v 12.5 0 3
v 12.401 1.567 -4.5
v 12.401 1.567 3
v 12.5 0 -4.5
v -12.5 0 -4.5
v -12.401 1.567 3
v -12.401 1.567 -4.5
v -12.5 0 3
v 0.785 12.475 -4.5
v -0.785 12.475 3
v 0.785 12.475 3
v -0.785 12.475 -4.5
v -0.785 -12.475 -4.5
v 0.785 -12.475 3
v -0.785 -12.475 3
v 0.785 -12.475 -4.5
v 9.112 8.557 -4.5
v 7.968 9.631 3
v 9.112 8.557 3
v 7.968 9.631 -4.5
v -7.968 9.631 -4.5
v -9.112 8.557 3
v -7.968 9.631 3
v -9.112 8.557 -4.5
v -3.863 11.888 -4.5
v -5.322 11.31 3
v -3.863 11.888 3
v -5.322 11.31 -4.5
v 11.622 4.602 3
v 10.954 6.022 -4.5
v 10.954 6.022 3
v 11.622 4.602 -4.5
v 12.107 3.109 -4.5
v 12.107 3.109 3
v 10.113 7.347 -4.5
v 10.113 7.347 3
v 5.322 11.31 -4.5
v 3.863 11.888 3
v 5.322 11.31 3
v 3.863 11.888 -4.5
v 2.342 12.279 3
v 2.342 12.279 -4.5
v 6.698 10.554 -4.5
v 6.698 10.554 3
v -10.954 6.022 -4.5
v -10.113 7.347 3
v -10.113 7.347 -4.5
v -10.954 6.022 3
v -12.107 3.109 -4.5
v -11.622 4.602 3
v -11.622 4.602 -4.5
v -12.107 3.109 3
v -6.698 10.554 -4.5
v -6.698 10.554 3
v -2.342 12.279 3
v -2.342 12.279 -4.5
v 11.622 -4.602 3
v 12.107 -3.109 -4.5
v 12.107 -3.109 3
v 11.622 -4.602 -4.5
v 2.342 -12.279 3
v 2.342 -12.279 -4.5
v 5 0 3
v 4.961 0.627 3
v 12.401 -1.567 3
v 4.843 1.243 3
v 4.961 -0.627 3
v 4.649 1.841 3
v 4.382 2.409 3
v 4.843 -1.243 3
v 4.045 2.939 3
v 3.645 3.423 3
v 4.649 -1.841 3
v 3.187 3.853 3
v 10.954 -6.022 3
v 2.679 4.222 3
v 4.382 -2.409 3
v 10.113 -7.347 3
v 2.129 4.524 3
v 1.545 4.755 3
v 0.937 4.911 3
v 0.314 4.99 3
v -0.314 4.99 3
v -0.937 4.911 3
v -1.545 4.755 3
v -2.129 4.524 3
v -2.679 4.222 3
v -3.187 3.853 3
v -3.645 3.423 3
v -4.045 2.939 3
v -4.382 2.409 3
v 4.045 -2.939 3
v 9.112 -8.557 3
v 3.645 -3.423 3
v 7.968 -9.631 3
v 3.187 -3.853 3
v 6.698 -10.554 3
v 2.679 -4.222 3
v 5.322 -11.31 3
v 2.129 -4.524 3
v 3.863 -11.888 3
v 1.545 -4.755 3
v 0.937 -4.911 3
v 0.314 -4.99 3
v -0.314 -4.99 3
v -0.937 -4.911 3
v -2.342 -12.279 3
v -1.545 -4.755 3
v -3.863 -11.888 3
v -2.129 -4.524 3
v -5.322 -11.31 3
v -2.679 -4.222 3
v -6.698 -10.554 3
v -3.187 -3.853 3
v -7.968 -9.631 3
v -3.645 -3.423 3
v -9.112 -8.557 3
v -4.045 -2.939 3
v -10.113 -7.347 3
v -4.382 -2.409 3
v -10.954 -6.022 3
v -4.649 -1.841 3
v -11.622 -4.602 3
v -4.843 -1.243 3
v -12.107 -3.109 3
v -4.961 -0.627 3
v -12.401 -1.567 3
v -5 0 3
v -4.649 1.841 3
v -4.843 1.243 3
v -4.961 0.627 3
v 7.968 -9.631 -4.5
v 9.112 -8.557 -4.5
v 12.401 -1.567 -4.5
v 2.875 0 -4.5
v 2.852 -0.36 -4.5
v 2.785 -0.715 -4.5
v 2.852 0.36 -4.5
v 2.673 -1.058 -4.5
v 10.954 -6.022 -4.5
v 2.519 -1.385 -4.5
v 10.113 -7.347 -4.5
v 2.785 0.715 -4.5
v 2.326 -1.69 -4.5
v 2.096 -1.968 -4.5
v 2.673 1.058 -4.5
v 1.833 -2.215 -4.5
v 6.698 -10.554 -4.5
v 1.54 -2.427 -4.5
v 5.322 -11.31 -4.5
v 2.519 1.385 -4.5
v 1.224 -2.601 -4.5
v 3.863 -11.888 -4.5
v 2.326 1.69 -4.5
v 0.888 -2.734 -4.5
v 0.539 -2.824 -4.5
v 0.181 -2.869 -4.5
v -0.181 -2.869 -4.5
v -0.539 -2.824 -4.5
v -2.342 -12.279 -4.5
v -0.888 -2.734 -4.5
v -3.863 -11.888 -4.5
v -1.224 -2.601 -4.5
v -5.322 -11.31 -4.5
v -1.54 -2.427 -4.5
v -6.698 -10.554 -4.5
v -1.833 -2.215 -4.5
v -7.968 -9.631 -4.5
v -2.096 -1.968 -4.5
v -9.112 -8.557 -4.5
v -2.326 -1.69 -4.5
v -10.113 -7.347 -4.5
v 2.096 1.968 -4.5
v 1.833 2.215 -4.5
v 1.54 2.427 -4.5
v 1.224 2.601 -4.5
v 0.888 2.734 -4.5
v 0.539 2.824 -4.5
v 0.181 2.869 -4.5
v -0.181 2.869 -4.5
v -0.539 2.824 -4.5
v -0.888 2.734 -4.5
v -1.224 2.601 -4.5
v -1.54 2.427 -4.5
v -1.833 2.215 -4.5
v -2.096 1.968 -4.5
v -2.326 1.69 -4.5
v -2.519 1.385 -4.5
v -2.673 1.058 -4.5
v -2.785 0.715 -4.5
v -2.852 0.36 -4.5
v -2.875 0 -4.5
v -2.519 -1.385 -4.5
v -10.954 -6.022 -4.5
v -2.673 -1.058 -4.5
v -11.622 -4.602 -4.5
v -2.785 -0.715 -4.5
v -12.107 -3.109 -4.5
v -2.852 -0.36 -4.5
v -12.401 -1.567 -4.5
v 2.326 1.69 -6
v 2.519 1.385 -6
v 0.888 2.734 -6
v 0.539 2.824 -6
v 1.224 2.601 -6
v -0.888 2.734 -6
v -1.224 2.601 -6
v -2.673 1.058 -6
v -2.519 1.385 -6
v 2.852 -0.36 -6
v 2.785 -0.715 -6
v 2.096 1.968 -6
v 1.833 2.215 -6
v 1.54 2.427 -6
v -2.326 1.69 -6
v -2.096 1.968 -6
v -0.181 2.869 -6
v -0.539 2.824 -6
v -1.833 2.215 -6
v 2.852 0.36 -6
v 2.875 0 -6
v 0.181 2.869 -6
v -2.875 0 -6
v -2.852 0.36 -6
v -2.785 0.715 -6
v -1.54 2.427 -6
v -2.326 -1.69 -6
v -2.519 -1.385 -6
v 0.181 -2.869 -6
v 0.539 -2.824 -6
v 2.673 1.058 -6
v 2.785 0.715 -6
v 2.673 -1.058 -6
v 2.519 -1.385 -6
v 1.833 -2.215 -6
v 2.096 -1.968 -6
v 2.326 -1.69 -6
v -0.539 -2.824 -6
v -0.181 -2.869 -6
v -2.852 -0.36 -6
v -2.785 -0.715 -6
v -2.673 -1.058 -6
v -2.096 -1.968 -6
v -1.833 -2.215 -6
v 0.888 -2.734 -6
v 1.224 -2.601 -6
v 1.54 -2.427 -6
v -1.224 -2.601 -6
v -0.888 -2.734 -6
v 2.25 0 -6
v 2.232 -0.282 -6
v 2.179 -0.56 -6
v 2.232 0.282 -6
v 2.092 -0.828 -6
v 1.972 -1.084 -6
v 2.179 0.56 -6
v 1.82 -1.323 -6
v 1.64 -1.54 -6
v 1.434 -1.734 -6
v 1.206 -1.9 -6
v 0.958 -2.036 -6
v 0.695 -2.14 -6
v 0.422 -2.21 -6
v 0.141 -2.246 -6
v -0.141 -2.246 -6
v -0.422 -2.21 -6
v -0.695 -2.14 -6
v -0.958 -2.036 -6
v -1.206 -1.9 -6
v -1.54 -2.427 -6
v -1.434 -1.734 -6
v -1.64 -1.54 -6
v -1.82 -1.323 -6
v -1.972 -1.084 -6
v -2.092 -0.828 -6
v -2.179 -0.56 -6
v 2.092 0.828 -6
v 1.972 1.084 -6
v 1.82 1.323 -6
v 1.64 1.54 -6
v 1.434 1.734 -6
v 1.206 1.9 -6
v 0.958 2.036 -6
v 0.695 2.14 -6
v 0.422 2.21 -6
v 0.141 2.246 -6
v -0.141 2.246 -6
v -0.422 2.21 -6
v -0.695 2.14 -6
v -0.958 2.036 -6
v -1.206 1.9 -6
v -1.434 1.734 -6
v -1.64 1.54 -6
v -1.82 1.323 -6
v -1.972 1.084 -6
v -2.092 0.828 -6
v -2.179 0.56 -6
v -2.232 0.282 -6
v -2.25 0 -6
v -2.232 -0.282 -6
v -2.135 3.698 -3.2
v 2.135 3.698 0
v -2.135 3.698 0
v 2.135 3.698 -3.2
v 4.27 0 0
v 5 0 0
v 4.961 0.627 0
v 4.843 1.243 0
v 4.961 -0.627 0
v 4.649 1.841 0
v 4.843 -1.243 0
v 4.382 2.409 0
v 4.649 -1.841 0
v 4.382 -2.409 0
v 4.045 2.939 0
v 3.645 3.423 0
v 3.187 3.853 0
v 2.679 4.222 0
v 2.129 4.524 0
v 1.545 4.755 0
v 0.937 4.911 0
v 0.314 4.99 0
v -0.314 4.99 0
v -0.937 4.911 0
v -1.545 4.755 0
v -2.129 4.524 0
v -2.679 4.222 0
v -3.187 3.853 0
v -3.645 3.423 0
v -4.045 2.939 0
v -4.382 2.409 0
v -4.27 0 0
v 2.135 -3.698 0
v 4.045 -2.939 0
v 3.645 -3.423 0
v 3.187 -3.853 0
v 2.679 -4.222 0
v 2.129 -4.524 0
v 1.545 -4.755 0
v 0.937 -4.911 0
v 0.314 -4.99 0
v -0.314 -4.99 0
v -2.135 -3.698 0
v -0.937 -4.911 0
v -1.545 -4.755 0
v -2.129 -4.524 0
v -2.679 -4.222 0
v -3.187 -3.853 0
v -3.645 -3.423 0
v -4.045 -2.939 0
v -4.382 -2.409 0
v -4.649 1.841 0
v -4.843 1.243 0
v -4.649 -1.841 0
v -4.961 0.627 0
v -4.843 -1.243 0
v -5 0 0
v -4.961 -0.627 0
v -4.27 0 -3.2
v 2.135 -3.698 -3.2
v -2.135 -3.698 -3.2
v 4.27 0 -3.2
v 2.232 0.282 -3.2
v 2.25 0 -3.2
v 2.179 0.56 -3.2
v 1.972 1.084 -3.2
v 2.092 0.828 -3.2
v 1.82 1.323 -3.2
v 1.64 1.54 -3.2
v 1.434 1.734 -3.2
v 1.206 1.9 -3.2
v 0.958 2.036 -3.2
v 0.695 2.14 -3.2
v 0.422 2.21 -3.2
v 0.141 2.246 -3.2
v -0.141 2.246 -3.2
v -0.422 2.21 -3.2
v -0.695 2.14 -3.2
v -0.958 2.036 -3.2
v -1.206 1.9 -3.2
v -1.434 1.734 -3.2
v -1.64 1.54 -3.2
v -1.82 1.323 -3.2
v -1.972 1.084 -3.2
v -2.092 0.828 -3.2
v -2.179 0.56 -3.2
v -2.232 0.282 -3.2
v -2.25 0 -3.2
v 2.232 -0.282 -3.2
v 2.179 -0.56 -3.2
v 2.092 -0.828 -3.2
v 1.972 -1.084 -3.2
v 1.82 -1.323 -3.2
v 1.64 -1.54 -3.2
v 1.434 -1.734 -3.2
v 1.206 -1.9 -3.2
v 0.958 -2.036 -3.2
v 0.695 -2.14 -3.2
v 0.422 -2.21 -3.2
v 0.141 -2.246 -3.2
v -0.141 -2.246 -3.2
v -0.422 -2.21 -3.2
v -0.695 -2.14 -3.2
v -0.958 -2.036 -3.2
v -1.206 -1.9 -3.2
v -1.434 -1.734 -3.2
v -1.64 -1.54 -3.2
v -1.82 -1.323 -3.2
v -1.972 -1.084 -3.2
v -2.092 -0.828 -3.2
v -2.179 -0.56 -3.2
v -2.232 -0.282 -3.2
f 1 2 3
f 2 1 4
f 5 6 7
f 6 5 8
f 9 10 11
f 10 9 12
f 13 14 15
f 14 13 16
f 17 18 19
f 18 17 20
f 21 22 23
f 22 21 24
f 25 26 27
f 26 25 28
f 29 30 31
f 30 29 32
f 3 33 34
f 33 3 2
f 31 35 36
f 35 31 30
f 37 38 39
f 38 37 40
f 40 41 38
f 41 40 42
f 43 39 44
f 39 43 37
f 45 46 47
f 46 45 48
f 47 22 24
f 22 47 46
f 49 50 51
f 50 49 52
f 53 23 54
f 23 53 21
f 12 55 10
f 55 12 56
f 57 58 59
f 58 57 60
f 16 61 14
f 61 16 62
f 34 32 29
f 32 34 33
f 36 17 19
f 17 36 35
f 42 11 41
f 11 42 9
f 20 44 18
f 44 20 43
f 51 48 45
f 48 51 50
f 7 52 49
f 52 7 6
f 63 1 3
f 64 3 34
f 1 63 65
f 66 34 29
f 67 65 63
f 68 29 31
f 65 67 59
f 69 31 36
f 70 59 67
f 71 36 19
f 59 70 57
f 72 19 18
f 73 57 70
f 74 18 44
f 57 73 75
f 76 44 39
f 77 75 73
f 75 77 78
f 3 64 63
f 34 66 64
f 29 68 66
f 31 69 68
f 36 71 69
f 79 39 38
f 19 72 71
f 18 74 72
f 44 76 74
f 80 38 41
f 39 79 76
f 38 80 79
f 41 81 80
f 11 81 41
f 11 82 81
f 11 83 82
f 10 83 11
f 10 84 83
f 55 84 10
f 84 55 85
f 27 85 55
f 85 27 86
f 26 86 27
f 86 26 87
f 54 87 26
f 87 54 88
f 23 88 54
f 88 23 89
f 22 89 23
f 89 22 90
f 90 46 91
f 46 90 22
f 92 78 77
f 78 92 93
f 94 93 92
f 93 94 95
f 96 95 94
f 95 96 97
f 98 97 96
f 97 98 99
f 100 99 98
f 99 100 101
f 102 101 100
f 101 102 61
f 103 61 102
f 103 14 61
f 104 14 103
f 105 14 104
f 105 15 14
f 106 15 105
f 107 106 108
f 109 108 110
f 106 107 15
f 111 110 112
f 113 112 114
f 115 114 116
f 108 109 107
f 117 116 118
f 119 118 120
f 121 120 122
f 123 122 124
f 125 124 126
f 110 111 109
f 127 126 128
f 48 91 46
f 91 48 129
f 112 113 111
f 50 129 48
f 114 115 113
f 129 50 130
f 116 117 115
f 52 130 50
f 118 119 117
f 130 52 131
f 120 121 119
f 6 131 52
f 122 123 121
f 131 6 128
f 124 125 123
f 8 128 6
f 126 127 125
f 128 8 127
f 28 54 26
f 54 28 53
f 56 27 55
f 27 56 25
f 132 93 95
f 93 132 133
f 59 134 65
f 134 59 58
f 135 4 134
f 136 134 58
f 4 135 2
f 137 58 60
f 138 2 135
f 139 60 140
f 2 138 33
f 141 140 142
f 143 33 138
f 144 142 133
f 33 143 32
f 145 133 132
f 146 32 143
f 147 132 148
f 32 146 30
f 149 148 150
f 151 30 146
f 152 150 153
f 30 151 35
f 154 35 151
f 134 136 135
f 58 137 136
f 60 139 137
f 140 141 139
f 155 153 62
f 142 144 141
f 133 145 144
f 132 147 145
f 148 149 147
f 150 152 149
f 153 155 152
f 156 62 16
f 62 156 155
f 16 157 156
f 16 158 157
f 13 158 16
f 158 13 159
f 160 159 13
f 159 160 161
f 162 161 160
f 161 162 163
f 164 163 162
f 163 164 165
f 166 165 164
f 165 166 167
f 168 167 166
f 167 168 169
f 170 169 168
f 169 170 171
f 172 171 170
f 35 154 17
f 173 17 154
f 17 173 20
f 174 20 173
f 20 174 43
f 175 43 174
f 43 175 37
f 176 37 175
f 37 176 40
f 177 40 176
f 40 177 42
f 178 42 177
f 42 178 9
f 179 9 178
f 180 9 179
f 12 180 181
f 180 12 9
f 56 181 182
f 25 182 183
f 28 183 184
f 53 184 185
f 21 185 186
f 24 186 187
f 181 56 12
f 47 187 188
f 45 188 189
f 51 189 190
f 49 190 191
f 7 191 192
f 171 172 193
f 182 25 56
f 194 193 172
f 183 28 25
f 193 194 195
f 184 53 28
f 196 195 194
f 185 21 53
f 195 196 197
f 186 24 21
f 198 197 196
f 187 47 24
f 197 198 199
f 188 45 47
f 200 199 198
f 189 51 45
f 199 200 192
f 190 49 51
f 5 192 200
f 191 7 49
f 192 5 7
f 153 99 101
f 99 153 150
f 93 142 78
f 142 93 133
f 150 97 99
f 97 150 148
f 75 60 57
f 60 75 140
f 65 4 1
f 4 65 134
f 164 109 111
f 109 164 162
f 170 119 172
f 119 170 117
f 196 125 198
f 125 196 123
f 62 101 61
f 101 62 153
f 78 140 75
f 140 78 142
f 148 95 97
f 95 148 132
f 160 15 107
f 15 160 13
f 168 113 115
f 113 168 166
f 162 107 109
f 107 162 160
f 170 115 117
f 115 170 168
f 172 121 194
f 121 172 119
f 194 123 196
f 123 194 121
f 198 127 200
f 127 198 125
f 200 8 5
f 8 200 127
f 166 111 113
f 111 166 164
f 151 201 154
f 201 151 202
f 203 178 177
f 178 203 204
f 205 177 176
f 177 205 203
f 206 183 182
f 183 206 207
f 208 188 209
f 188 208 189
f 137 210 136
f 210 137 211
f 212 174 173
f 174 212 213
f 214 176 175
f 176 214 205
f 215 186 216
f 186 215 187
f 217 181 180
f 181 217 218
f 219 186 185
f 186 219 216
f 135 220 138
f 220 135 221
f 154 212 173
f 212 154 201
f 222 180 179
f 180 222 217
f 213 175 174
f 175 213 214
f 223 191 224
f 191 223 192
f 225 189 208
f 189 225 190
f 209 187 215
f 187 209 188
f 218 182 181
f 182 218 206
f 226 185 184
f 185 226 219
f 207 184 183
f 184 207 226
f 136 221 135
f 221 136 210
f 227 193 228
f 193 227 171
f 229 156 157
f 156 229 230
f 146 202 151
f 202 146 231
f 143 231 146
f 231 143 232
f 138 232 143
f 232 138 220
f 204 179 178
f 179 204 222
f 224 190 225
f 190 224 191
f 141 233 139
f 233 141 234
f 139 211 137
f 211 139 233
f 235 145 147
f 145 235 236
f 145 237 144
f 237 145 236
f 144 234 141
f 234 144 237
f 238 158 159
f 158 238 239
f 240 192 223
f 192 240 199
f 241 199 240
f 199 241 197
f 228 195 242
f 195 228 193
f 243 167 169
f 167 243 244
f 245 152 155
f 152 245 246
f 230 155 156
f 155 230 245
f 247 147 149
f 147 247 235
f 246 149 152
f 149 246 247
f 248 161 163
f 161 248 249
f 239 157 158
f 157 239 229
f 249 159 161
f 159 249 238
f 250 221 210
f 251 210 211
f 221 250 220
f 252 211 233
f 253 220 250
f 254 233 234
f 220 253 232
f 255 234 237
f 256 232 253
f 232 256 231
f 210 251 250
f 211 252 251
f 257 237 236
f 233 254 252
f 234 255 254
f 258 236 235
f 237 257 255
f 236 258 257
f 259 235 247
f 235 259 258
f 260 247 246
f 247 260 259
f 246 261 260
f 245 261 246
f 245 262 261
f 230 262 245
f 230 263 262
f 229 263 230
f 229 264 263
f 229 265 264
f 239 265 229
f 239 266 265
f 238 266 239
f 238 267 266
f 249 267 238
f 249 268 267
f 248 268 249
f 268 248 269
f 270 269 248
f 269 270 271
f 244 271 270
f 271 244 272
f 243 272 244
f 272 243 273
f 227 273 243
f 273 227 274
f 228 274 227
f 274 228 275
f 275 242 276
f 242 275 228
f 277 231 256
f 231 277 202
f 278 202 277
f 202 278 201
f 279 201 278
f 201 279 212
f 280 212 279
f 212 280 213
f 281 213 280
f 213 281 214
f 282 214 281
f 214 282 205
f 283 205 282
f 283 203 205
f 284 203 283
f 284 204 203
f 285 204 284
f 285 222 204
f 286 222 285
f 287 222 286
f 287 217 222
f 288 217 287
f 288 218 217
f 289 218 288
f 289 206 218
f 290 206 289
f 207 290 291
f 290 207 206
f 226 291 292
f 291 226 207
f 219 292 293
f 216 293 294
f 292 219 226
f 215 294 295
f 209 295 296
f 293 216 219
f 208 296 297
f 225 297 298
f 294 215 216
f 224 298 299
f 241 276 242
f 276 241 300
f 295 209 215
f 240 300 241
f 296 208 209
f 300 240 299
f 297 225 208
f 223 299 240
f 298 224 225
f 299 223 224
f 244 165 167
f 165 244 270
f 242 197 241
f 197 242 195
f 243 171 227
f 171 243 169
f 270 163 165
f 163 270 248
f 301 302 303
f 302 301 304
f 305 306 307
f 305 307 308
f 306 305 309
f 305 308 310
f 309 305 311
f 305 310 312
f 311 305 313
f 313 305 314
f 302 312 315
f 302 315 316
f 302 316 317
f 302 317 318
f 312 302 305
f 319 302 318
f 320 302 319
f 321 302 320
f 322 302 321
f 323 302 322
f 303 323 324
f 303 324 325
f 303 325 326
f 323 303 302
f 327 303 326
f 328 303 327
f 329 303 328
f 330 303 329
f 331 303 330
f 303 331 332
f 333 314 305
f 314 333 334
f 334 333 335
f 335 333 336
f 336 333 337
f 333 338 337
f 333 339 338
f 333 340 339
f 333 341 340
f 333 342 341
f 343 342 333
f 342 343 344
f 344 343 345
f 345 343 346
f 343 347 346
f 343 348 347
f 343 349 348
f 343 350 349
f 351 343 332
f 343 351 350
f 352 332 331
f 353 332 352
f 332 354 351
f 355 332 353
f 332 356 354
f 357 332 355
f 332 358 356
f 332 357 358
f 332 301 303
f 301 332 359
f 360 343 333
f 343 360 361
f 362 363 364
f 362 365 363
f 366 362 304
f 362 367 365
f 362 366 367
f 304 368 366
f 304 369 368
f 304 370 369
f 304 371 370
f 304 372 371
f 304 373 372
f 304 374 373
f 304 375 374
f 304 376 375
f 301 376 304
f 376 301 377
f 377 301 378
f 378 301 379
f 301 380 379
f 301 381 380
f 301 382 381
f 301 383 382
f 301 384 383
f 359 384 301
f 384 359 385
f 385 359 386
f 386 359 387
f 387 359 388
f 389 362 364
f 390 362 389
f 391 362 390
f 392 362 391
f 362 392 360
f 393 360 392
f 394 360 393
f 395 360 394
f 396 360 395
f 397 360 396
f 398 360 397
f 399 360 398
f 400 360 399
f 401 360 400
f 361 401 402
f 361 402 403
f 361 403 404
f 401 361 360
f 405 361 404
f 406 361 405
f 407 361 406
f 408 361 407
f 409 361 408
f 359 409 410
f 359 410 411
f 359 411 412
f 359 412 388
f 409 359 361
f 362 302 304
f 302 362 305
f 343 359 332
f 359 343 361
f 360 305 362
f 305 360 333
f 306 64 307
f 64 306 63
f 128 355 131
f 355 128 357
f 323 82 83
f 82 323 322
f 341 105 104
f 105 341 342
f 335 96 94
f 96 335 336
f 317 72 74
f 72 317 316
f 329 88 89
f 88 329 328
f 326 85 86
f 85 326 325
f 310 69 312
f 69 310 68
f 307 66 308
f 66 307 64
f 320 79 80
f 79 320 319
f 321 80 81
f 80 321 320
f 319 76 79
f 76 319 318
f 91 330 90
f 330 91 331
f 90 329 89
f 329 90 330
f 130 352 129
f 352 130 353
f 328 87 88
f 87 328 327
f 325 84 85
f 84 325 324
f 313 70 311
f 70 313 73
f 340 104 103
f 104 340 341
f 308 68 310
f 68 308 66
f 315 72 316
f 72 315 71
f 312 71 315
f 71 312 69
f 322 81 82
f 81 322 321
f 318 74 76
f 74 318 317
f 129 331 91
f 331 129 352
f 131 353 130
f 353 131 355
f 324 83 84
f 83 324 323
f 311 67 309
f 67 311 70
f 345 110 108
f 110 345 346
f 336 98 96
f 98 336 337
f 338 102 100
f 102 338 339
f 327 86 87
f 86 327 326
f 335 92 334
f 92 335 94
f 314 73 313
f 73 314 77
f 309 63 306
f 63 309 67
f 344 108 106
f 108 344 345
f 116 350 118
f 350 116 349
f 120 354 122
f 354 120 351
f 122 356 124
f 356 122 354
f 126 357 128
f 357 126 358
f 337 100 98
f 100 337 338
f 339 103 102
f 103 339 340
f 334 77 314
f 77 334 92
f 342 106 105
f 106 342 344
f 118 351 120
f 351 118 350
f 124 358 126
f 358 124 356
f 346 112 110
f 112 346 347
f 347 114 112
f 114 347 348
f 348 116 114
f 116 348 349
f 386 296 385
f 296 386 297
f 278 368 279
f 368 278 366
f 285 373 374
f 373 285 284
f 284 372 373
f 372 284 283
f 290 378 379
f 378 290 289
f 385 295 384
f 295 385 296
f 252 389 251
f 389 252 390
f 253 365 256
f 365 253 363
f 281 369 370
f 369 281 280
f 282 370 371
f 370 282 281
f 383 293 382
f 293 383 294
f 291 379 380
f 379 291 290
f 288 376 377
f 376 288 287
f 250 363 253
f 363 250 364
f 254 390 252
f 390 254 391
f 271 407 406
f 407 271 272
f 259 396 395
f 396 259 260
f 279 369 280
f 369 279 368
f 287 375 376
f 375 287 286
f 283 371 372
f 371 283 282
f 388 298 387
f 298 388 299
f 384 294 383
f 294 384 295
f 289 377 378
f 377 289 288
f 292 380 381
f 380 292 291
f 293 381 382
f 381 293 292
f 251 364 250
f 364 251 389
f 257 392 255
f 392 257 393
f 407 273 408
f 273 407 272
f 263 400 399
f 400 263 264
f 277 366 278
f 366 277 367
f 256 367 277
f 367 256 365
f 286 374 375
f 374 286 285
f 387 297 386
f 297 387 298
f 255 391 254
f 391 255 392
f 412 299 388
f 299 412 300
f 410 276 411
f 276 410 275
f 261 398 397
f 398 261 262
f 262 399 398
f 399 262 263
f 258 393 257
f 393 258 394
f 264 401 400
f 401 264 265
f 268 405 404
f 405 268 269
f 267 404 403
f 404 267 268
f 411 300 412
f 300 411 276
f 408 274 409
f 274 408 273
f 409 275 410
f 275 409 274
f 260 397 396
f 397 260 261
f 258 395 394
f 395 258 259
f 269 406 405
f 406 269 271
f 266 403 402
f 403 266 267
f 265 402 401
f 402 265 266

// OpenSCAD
$fn = 50;

difference() {
	union() {
		translate(v = [0, 0, -4.5]) {
			cylinder(h = 7.5, r = 12.5);
		}
		#translate(v = [0, 0, -6.0]) {
			cylinder(h = 6, r = 2.875);
		}
	}
	union() {
		translate(v = [0, 0, 0]) {
			rotate(a = [0, 0, 0]) {
				difference() {
					union() {
						translate(v = [0, 0, -3.2]) {
							linear_extrude(height = 3.2) {
								polygon(points = [[4.2698, 0.0], [2.1349000000000005, 3.697755269078796], [-2.134899999999999, 3.6977552690787965], [-4.2698, 5.228996902999369e-16], [-2.134900000000002, -3.6977552690787956], [2.1348999999999974, -3.697755269078798]]);
							}
						}
					}
					union();
				}
			}
		}
		#cylinder(h = 3, r = 5.0);
		#translate(v = [0, 0, -100.0]) {
			cylinder(h = 200, r = 2.25);
		}
	}
}
